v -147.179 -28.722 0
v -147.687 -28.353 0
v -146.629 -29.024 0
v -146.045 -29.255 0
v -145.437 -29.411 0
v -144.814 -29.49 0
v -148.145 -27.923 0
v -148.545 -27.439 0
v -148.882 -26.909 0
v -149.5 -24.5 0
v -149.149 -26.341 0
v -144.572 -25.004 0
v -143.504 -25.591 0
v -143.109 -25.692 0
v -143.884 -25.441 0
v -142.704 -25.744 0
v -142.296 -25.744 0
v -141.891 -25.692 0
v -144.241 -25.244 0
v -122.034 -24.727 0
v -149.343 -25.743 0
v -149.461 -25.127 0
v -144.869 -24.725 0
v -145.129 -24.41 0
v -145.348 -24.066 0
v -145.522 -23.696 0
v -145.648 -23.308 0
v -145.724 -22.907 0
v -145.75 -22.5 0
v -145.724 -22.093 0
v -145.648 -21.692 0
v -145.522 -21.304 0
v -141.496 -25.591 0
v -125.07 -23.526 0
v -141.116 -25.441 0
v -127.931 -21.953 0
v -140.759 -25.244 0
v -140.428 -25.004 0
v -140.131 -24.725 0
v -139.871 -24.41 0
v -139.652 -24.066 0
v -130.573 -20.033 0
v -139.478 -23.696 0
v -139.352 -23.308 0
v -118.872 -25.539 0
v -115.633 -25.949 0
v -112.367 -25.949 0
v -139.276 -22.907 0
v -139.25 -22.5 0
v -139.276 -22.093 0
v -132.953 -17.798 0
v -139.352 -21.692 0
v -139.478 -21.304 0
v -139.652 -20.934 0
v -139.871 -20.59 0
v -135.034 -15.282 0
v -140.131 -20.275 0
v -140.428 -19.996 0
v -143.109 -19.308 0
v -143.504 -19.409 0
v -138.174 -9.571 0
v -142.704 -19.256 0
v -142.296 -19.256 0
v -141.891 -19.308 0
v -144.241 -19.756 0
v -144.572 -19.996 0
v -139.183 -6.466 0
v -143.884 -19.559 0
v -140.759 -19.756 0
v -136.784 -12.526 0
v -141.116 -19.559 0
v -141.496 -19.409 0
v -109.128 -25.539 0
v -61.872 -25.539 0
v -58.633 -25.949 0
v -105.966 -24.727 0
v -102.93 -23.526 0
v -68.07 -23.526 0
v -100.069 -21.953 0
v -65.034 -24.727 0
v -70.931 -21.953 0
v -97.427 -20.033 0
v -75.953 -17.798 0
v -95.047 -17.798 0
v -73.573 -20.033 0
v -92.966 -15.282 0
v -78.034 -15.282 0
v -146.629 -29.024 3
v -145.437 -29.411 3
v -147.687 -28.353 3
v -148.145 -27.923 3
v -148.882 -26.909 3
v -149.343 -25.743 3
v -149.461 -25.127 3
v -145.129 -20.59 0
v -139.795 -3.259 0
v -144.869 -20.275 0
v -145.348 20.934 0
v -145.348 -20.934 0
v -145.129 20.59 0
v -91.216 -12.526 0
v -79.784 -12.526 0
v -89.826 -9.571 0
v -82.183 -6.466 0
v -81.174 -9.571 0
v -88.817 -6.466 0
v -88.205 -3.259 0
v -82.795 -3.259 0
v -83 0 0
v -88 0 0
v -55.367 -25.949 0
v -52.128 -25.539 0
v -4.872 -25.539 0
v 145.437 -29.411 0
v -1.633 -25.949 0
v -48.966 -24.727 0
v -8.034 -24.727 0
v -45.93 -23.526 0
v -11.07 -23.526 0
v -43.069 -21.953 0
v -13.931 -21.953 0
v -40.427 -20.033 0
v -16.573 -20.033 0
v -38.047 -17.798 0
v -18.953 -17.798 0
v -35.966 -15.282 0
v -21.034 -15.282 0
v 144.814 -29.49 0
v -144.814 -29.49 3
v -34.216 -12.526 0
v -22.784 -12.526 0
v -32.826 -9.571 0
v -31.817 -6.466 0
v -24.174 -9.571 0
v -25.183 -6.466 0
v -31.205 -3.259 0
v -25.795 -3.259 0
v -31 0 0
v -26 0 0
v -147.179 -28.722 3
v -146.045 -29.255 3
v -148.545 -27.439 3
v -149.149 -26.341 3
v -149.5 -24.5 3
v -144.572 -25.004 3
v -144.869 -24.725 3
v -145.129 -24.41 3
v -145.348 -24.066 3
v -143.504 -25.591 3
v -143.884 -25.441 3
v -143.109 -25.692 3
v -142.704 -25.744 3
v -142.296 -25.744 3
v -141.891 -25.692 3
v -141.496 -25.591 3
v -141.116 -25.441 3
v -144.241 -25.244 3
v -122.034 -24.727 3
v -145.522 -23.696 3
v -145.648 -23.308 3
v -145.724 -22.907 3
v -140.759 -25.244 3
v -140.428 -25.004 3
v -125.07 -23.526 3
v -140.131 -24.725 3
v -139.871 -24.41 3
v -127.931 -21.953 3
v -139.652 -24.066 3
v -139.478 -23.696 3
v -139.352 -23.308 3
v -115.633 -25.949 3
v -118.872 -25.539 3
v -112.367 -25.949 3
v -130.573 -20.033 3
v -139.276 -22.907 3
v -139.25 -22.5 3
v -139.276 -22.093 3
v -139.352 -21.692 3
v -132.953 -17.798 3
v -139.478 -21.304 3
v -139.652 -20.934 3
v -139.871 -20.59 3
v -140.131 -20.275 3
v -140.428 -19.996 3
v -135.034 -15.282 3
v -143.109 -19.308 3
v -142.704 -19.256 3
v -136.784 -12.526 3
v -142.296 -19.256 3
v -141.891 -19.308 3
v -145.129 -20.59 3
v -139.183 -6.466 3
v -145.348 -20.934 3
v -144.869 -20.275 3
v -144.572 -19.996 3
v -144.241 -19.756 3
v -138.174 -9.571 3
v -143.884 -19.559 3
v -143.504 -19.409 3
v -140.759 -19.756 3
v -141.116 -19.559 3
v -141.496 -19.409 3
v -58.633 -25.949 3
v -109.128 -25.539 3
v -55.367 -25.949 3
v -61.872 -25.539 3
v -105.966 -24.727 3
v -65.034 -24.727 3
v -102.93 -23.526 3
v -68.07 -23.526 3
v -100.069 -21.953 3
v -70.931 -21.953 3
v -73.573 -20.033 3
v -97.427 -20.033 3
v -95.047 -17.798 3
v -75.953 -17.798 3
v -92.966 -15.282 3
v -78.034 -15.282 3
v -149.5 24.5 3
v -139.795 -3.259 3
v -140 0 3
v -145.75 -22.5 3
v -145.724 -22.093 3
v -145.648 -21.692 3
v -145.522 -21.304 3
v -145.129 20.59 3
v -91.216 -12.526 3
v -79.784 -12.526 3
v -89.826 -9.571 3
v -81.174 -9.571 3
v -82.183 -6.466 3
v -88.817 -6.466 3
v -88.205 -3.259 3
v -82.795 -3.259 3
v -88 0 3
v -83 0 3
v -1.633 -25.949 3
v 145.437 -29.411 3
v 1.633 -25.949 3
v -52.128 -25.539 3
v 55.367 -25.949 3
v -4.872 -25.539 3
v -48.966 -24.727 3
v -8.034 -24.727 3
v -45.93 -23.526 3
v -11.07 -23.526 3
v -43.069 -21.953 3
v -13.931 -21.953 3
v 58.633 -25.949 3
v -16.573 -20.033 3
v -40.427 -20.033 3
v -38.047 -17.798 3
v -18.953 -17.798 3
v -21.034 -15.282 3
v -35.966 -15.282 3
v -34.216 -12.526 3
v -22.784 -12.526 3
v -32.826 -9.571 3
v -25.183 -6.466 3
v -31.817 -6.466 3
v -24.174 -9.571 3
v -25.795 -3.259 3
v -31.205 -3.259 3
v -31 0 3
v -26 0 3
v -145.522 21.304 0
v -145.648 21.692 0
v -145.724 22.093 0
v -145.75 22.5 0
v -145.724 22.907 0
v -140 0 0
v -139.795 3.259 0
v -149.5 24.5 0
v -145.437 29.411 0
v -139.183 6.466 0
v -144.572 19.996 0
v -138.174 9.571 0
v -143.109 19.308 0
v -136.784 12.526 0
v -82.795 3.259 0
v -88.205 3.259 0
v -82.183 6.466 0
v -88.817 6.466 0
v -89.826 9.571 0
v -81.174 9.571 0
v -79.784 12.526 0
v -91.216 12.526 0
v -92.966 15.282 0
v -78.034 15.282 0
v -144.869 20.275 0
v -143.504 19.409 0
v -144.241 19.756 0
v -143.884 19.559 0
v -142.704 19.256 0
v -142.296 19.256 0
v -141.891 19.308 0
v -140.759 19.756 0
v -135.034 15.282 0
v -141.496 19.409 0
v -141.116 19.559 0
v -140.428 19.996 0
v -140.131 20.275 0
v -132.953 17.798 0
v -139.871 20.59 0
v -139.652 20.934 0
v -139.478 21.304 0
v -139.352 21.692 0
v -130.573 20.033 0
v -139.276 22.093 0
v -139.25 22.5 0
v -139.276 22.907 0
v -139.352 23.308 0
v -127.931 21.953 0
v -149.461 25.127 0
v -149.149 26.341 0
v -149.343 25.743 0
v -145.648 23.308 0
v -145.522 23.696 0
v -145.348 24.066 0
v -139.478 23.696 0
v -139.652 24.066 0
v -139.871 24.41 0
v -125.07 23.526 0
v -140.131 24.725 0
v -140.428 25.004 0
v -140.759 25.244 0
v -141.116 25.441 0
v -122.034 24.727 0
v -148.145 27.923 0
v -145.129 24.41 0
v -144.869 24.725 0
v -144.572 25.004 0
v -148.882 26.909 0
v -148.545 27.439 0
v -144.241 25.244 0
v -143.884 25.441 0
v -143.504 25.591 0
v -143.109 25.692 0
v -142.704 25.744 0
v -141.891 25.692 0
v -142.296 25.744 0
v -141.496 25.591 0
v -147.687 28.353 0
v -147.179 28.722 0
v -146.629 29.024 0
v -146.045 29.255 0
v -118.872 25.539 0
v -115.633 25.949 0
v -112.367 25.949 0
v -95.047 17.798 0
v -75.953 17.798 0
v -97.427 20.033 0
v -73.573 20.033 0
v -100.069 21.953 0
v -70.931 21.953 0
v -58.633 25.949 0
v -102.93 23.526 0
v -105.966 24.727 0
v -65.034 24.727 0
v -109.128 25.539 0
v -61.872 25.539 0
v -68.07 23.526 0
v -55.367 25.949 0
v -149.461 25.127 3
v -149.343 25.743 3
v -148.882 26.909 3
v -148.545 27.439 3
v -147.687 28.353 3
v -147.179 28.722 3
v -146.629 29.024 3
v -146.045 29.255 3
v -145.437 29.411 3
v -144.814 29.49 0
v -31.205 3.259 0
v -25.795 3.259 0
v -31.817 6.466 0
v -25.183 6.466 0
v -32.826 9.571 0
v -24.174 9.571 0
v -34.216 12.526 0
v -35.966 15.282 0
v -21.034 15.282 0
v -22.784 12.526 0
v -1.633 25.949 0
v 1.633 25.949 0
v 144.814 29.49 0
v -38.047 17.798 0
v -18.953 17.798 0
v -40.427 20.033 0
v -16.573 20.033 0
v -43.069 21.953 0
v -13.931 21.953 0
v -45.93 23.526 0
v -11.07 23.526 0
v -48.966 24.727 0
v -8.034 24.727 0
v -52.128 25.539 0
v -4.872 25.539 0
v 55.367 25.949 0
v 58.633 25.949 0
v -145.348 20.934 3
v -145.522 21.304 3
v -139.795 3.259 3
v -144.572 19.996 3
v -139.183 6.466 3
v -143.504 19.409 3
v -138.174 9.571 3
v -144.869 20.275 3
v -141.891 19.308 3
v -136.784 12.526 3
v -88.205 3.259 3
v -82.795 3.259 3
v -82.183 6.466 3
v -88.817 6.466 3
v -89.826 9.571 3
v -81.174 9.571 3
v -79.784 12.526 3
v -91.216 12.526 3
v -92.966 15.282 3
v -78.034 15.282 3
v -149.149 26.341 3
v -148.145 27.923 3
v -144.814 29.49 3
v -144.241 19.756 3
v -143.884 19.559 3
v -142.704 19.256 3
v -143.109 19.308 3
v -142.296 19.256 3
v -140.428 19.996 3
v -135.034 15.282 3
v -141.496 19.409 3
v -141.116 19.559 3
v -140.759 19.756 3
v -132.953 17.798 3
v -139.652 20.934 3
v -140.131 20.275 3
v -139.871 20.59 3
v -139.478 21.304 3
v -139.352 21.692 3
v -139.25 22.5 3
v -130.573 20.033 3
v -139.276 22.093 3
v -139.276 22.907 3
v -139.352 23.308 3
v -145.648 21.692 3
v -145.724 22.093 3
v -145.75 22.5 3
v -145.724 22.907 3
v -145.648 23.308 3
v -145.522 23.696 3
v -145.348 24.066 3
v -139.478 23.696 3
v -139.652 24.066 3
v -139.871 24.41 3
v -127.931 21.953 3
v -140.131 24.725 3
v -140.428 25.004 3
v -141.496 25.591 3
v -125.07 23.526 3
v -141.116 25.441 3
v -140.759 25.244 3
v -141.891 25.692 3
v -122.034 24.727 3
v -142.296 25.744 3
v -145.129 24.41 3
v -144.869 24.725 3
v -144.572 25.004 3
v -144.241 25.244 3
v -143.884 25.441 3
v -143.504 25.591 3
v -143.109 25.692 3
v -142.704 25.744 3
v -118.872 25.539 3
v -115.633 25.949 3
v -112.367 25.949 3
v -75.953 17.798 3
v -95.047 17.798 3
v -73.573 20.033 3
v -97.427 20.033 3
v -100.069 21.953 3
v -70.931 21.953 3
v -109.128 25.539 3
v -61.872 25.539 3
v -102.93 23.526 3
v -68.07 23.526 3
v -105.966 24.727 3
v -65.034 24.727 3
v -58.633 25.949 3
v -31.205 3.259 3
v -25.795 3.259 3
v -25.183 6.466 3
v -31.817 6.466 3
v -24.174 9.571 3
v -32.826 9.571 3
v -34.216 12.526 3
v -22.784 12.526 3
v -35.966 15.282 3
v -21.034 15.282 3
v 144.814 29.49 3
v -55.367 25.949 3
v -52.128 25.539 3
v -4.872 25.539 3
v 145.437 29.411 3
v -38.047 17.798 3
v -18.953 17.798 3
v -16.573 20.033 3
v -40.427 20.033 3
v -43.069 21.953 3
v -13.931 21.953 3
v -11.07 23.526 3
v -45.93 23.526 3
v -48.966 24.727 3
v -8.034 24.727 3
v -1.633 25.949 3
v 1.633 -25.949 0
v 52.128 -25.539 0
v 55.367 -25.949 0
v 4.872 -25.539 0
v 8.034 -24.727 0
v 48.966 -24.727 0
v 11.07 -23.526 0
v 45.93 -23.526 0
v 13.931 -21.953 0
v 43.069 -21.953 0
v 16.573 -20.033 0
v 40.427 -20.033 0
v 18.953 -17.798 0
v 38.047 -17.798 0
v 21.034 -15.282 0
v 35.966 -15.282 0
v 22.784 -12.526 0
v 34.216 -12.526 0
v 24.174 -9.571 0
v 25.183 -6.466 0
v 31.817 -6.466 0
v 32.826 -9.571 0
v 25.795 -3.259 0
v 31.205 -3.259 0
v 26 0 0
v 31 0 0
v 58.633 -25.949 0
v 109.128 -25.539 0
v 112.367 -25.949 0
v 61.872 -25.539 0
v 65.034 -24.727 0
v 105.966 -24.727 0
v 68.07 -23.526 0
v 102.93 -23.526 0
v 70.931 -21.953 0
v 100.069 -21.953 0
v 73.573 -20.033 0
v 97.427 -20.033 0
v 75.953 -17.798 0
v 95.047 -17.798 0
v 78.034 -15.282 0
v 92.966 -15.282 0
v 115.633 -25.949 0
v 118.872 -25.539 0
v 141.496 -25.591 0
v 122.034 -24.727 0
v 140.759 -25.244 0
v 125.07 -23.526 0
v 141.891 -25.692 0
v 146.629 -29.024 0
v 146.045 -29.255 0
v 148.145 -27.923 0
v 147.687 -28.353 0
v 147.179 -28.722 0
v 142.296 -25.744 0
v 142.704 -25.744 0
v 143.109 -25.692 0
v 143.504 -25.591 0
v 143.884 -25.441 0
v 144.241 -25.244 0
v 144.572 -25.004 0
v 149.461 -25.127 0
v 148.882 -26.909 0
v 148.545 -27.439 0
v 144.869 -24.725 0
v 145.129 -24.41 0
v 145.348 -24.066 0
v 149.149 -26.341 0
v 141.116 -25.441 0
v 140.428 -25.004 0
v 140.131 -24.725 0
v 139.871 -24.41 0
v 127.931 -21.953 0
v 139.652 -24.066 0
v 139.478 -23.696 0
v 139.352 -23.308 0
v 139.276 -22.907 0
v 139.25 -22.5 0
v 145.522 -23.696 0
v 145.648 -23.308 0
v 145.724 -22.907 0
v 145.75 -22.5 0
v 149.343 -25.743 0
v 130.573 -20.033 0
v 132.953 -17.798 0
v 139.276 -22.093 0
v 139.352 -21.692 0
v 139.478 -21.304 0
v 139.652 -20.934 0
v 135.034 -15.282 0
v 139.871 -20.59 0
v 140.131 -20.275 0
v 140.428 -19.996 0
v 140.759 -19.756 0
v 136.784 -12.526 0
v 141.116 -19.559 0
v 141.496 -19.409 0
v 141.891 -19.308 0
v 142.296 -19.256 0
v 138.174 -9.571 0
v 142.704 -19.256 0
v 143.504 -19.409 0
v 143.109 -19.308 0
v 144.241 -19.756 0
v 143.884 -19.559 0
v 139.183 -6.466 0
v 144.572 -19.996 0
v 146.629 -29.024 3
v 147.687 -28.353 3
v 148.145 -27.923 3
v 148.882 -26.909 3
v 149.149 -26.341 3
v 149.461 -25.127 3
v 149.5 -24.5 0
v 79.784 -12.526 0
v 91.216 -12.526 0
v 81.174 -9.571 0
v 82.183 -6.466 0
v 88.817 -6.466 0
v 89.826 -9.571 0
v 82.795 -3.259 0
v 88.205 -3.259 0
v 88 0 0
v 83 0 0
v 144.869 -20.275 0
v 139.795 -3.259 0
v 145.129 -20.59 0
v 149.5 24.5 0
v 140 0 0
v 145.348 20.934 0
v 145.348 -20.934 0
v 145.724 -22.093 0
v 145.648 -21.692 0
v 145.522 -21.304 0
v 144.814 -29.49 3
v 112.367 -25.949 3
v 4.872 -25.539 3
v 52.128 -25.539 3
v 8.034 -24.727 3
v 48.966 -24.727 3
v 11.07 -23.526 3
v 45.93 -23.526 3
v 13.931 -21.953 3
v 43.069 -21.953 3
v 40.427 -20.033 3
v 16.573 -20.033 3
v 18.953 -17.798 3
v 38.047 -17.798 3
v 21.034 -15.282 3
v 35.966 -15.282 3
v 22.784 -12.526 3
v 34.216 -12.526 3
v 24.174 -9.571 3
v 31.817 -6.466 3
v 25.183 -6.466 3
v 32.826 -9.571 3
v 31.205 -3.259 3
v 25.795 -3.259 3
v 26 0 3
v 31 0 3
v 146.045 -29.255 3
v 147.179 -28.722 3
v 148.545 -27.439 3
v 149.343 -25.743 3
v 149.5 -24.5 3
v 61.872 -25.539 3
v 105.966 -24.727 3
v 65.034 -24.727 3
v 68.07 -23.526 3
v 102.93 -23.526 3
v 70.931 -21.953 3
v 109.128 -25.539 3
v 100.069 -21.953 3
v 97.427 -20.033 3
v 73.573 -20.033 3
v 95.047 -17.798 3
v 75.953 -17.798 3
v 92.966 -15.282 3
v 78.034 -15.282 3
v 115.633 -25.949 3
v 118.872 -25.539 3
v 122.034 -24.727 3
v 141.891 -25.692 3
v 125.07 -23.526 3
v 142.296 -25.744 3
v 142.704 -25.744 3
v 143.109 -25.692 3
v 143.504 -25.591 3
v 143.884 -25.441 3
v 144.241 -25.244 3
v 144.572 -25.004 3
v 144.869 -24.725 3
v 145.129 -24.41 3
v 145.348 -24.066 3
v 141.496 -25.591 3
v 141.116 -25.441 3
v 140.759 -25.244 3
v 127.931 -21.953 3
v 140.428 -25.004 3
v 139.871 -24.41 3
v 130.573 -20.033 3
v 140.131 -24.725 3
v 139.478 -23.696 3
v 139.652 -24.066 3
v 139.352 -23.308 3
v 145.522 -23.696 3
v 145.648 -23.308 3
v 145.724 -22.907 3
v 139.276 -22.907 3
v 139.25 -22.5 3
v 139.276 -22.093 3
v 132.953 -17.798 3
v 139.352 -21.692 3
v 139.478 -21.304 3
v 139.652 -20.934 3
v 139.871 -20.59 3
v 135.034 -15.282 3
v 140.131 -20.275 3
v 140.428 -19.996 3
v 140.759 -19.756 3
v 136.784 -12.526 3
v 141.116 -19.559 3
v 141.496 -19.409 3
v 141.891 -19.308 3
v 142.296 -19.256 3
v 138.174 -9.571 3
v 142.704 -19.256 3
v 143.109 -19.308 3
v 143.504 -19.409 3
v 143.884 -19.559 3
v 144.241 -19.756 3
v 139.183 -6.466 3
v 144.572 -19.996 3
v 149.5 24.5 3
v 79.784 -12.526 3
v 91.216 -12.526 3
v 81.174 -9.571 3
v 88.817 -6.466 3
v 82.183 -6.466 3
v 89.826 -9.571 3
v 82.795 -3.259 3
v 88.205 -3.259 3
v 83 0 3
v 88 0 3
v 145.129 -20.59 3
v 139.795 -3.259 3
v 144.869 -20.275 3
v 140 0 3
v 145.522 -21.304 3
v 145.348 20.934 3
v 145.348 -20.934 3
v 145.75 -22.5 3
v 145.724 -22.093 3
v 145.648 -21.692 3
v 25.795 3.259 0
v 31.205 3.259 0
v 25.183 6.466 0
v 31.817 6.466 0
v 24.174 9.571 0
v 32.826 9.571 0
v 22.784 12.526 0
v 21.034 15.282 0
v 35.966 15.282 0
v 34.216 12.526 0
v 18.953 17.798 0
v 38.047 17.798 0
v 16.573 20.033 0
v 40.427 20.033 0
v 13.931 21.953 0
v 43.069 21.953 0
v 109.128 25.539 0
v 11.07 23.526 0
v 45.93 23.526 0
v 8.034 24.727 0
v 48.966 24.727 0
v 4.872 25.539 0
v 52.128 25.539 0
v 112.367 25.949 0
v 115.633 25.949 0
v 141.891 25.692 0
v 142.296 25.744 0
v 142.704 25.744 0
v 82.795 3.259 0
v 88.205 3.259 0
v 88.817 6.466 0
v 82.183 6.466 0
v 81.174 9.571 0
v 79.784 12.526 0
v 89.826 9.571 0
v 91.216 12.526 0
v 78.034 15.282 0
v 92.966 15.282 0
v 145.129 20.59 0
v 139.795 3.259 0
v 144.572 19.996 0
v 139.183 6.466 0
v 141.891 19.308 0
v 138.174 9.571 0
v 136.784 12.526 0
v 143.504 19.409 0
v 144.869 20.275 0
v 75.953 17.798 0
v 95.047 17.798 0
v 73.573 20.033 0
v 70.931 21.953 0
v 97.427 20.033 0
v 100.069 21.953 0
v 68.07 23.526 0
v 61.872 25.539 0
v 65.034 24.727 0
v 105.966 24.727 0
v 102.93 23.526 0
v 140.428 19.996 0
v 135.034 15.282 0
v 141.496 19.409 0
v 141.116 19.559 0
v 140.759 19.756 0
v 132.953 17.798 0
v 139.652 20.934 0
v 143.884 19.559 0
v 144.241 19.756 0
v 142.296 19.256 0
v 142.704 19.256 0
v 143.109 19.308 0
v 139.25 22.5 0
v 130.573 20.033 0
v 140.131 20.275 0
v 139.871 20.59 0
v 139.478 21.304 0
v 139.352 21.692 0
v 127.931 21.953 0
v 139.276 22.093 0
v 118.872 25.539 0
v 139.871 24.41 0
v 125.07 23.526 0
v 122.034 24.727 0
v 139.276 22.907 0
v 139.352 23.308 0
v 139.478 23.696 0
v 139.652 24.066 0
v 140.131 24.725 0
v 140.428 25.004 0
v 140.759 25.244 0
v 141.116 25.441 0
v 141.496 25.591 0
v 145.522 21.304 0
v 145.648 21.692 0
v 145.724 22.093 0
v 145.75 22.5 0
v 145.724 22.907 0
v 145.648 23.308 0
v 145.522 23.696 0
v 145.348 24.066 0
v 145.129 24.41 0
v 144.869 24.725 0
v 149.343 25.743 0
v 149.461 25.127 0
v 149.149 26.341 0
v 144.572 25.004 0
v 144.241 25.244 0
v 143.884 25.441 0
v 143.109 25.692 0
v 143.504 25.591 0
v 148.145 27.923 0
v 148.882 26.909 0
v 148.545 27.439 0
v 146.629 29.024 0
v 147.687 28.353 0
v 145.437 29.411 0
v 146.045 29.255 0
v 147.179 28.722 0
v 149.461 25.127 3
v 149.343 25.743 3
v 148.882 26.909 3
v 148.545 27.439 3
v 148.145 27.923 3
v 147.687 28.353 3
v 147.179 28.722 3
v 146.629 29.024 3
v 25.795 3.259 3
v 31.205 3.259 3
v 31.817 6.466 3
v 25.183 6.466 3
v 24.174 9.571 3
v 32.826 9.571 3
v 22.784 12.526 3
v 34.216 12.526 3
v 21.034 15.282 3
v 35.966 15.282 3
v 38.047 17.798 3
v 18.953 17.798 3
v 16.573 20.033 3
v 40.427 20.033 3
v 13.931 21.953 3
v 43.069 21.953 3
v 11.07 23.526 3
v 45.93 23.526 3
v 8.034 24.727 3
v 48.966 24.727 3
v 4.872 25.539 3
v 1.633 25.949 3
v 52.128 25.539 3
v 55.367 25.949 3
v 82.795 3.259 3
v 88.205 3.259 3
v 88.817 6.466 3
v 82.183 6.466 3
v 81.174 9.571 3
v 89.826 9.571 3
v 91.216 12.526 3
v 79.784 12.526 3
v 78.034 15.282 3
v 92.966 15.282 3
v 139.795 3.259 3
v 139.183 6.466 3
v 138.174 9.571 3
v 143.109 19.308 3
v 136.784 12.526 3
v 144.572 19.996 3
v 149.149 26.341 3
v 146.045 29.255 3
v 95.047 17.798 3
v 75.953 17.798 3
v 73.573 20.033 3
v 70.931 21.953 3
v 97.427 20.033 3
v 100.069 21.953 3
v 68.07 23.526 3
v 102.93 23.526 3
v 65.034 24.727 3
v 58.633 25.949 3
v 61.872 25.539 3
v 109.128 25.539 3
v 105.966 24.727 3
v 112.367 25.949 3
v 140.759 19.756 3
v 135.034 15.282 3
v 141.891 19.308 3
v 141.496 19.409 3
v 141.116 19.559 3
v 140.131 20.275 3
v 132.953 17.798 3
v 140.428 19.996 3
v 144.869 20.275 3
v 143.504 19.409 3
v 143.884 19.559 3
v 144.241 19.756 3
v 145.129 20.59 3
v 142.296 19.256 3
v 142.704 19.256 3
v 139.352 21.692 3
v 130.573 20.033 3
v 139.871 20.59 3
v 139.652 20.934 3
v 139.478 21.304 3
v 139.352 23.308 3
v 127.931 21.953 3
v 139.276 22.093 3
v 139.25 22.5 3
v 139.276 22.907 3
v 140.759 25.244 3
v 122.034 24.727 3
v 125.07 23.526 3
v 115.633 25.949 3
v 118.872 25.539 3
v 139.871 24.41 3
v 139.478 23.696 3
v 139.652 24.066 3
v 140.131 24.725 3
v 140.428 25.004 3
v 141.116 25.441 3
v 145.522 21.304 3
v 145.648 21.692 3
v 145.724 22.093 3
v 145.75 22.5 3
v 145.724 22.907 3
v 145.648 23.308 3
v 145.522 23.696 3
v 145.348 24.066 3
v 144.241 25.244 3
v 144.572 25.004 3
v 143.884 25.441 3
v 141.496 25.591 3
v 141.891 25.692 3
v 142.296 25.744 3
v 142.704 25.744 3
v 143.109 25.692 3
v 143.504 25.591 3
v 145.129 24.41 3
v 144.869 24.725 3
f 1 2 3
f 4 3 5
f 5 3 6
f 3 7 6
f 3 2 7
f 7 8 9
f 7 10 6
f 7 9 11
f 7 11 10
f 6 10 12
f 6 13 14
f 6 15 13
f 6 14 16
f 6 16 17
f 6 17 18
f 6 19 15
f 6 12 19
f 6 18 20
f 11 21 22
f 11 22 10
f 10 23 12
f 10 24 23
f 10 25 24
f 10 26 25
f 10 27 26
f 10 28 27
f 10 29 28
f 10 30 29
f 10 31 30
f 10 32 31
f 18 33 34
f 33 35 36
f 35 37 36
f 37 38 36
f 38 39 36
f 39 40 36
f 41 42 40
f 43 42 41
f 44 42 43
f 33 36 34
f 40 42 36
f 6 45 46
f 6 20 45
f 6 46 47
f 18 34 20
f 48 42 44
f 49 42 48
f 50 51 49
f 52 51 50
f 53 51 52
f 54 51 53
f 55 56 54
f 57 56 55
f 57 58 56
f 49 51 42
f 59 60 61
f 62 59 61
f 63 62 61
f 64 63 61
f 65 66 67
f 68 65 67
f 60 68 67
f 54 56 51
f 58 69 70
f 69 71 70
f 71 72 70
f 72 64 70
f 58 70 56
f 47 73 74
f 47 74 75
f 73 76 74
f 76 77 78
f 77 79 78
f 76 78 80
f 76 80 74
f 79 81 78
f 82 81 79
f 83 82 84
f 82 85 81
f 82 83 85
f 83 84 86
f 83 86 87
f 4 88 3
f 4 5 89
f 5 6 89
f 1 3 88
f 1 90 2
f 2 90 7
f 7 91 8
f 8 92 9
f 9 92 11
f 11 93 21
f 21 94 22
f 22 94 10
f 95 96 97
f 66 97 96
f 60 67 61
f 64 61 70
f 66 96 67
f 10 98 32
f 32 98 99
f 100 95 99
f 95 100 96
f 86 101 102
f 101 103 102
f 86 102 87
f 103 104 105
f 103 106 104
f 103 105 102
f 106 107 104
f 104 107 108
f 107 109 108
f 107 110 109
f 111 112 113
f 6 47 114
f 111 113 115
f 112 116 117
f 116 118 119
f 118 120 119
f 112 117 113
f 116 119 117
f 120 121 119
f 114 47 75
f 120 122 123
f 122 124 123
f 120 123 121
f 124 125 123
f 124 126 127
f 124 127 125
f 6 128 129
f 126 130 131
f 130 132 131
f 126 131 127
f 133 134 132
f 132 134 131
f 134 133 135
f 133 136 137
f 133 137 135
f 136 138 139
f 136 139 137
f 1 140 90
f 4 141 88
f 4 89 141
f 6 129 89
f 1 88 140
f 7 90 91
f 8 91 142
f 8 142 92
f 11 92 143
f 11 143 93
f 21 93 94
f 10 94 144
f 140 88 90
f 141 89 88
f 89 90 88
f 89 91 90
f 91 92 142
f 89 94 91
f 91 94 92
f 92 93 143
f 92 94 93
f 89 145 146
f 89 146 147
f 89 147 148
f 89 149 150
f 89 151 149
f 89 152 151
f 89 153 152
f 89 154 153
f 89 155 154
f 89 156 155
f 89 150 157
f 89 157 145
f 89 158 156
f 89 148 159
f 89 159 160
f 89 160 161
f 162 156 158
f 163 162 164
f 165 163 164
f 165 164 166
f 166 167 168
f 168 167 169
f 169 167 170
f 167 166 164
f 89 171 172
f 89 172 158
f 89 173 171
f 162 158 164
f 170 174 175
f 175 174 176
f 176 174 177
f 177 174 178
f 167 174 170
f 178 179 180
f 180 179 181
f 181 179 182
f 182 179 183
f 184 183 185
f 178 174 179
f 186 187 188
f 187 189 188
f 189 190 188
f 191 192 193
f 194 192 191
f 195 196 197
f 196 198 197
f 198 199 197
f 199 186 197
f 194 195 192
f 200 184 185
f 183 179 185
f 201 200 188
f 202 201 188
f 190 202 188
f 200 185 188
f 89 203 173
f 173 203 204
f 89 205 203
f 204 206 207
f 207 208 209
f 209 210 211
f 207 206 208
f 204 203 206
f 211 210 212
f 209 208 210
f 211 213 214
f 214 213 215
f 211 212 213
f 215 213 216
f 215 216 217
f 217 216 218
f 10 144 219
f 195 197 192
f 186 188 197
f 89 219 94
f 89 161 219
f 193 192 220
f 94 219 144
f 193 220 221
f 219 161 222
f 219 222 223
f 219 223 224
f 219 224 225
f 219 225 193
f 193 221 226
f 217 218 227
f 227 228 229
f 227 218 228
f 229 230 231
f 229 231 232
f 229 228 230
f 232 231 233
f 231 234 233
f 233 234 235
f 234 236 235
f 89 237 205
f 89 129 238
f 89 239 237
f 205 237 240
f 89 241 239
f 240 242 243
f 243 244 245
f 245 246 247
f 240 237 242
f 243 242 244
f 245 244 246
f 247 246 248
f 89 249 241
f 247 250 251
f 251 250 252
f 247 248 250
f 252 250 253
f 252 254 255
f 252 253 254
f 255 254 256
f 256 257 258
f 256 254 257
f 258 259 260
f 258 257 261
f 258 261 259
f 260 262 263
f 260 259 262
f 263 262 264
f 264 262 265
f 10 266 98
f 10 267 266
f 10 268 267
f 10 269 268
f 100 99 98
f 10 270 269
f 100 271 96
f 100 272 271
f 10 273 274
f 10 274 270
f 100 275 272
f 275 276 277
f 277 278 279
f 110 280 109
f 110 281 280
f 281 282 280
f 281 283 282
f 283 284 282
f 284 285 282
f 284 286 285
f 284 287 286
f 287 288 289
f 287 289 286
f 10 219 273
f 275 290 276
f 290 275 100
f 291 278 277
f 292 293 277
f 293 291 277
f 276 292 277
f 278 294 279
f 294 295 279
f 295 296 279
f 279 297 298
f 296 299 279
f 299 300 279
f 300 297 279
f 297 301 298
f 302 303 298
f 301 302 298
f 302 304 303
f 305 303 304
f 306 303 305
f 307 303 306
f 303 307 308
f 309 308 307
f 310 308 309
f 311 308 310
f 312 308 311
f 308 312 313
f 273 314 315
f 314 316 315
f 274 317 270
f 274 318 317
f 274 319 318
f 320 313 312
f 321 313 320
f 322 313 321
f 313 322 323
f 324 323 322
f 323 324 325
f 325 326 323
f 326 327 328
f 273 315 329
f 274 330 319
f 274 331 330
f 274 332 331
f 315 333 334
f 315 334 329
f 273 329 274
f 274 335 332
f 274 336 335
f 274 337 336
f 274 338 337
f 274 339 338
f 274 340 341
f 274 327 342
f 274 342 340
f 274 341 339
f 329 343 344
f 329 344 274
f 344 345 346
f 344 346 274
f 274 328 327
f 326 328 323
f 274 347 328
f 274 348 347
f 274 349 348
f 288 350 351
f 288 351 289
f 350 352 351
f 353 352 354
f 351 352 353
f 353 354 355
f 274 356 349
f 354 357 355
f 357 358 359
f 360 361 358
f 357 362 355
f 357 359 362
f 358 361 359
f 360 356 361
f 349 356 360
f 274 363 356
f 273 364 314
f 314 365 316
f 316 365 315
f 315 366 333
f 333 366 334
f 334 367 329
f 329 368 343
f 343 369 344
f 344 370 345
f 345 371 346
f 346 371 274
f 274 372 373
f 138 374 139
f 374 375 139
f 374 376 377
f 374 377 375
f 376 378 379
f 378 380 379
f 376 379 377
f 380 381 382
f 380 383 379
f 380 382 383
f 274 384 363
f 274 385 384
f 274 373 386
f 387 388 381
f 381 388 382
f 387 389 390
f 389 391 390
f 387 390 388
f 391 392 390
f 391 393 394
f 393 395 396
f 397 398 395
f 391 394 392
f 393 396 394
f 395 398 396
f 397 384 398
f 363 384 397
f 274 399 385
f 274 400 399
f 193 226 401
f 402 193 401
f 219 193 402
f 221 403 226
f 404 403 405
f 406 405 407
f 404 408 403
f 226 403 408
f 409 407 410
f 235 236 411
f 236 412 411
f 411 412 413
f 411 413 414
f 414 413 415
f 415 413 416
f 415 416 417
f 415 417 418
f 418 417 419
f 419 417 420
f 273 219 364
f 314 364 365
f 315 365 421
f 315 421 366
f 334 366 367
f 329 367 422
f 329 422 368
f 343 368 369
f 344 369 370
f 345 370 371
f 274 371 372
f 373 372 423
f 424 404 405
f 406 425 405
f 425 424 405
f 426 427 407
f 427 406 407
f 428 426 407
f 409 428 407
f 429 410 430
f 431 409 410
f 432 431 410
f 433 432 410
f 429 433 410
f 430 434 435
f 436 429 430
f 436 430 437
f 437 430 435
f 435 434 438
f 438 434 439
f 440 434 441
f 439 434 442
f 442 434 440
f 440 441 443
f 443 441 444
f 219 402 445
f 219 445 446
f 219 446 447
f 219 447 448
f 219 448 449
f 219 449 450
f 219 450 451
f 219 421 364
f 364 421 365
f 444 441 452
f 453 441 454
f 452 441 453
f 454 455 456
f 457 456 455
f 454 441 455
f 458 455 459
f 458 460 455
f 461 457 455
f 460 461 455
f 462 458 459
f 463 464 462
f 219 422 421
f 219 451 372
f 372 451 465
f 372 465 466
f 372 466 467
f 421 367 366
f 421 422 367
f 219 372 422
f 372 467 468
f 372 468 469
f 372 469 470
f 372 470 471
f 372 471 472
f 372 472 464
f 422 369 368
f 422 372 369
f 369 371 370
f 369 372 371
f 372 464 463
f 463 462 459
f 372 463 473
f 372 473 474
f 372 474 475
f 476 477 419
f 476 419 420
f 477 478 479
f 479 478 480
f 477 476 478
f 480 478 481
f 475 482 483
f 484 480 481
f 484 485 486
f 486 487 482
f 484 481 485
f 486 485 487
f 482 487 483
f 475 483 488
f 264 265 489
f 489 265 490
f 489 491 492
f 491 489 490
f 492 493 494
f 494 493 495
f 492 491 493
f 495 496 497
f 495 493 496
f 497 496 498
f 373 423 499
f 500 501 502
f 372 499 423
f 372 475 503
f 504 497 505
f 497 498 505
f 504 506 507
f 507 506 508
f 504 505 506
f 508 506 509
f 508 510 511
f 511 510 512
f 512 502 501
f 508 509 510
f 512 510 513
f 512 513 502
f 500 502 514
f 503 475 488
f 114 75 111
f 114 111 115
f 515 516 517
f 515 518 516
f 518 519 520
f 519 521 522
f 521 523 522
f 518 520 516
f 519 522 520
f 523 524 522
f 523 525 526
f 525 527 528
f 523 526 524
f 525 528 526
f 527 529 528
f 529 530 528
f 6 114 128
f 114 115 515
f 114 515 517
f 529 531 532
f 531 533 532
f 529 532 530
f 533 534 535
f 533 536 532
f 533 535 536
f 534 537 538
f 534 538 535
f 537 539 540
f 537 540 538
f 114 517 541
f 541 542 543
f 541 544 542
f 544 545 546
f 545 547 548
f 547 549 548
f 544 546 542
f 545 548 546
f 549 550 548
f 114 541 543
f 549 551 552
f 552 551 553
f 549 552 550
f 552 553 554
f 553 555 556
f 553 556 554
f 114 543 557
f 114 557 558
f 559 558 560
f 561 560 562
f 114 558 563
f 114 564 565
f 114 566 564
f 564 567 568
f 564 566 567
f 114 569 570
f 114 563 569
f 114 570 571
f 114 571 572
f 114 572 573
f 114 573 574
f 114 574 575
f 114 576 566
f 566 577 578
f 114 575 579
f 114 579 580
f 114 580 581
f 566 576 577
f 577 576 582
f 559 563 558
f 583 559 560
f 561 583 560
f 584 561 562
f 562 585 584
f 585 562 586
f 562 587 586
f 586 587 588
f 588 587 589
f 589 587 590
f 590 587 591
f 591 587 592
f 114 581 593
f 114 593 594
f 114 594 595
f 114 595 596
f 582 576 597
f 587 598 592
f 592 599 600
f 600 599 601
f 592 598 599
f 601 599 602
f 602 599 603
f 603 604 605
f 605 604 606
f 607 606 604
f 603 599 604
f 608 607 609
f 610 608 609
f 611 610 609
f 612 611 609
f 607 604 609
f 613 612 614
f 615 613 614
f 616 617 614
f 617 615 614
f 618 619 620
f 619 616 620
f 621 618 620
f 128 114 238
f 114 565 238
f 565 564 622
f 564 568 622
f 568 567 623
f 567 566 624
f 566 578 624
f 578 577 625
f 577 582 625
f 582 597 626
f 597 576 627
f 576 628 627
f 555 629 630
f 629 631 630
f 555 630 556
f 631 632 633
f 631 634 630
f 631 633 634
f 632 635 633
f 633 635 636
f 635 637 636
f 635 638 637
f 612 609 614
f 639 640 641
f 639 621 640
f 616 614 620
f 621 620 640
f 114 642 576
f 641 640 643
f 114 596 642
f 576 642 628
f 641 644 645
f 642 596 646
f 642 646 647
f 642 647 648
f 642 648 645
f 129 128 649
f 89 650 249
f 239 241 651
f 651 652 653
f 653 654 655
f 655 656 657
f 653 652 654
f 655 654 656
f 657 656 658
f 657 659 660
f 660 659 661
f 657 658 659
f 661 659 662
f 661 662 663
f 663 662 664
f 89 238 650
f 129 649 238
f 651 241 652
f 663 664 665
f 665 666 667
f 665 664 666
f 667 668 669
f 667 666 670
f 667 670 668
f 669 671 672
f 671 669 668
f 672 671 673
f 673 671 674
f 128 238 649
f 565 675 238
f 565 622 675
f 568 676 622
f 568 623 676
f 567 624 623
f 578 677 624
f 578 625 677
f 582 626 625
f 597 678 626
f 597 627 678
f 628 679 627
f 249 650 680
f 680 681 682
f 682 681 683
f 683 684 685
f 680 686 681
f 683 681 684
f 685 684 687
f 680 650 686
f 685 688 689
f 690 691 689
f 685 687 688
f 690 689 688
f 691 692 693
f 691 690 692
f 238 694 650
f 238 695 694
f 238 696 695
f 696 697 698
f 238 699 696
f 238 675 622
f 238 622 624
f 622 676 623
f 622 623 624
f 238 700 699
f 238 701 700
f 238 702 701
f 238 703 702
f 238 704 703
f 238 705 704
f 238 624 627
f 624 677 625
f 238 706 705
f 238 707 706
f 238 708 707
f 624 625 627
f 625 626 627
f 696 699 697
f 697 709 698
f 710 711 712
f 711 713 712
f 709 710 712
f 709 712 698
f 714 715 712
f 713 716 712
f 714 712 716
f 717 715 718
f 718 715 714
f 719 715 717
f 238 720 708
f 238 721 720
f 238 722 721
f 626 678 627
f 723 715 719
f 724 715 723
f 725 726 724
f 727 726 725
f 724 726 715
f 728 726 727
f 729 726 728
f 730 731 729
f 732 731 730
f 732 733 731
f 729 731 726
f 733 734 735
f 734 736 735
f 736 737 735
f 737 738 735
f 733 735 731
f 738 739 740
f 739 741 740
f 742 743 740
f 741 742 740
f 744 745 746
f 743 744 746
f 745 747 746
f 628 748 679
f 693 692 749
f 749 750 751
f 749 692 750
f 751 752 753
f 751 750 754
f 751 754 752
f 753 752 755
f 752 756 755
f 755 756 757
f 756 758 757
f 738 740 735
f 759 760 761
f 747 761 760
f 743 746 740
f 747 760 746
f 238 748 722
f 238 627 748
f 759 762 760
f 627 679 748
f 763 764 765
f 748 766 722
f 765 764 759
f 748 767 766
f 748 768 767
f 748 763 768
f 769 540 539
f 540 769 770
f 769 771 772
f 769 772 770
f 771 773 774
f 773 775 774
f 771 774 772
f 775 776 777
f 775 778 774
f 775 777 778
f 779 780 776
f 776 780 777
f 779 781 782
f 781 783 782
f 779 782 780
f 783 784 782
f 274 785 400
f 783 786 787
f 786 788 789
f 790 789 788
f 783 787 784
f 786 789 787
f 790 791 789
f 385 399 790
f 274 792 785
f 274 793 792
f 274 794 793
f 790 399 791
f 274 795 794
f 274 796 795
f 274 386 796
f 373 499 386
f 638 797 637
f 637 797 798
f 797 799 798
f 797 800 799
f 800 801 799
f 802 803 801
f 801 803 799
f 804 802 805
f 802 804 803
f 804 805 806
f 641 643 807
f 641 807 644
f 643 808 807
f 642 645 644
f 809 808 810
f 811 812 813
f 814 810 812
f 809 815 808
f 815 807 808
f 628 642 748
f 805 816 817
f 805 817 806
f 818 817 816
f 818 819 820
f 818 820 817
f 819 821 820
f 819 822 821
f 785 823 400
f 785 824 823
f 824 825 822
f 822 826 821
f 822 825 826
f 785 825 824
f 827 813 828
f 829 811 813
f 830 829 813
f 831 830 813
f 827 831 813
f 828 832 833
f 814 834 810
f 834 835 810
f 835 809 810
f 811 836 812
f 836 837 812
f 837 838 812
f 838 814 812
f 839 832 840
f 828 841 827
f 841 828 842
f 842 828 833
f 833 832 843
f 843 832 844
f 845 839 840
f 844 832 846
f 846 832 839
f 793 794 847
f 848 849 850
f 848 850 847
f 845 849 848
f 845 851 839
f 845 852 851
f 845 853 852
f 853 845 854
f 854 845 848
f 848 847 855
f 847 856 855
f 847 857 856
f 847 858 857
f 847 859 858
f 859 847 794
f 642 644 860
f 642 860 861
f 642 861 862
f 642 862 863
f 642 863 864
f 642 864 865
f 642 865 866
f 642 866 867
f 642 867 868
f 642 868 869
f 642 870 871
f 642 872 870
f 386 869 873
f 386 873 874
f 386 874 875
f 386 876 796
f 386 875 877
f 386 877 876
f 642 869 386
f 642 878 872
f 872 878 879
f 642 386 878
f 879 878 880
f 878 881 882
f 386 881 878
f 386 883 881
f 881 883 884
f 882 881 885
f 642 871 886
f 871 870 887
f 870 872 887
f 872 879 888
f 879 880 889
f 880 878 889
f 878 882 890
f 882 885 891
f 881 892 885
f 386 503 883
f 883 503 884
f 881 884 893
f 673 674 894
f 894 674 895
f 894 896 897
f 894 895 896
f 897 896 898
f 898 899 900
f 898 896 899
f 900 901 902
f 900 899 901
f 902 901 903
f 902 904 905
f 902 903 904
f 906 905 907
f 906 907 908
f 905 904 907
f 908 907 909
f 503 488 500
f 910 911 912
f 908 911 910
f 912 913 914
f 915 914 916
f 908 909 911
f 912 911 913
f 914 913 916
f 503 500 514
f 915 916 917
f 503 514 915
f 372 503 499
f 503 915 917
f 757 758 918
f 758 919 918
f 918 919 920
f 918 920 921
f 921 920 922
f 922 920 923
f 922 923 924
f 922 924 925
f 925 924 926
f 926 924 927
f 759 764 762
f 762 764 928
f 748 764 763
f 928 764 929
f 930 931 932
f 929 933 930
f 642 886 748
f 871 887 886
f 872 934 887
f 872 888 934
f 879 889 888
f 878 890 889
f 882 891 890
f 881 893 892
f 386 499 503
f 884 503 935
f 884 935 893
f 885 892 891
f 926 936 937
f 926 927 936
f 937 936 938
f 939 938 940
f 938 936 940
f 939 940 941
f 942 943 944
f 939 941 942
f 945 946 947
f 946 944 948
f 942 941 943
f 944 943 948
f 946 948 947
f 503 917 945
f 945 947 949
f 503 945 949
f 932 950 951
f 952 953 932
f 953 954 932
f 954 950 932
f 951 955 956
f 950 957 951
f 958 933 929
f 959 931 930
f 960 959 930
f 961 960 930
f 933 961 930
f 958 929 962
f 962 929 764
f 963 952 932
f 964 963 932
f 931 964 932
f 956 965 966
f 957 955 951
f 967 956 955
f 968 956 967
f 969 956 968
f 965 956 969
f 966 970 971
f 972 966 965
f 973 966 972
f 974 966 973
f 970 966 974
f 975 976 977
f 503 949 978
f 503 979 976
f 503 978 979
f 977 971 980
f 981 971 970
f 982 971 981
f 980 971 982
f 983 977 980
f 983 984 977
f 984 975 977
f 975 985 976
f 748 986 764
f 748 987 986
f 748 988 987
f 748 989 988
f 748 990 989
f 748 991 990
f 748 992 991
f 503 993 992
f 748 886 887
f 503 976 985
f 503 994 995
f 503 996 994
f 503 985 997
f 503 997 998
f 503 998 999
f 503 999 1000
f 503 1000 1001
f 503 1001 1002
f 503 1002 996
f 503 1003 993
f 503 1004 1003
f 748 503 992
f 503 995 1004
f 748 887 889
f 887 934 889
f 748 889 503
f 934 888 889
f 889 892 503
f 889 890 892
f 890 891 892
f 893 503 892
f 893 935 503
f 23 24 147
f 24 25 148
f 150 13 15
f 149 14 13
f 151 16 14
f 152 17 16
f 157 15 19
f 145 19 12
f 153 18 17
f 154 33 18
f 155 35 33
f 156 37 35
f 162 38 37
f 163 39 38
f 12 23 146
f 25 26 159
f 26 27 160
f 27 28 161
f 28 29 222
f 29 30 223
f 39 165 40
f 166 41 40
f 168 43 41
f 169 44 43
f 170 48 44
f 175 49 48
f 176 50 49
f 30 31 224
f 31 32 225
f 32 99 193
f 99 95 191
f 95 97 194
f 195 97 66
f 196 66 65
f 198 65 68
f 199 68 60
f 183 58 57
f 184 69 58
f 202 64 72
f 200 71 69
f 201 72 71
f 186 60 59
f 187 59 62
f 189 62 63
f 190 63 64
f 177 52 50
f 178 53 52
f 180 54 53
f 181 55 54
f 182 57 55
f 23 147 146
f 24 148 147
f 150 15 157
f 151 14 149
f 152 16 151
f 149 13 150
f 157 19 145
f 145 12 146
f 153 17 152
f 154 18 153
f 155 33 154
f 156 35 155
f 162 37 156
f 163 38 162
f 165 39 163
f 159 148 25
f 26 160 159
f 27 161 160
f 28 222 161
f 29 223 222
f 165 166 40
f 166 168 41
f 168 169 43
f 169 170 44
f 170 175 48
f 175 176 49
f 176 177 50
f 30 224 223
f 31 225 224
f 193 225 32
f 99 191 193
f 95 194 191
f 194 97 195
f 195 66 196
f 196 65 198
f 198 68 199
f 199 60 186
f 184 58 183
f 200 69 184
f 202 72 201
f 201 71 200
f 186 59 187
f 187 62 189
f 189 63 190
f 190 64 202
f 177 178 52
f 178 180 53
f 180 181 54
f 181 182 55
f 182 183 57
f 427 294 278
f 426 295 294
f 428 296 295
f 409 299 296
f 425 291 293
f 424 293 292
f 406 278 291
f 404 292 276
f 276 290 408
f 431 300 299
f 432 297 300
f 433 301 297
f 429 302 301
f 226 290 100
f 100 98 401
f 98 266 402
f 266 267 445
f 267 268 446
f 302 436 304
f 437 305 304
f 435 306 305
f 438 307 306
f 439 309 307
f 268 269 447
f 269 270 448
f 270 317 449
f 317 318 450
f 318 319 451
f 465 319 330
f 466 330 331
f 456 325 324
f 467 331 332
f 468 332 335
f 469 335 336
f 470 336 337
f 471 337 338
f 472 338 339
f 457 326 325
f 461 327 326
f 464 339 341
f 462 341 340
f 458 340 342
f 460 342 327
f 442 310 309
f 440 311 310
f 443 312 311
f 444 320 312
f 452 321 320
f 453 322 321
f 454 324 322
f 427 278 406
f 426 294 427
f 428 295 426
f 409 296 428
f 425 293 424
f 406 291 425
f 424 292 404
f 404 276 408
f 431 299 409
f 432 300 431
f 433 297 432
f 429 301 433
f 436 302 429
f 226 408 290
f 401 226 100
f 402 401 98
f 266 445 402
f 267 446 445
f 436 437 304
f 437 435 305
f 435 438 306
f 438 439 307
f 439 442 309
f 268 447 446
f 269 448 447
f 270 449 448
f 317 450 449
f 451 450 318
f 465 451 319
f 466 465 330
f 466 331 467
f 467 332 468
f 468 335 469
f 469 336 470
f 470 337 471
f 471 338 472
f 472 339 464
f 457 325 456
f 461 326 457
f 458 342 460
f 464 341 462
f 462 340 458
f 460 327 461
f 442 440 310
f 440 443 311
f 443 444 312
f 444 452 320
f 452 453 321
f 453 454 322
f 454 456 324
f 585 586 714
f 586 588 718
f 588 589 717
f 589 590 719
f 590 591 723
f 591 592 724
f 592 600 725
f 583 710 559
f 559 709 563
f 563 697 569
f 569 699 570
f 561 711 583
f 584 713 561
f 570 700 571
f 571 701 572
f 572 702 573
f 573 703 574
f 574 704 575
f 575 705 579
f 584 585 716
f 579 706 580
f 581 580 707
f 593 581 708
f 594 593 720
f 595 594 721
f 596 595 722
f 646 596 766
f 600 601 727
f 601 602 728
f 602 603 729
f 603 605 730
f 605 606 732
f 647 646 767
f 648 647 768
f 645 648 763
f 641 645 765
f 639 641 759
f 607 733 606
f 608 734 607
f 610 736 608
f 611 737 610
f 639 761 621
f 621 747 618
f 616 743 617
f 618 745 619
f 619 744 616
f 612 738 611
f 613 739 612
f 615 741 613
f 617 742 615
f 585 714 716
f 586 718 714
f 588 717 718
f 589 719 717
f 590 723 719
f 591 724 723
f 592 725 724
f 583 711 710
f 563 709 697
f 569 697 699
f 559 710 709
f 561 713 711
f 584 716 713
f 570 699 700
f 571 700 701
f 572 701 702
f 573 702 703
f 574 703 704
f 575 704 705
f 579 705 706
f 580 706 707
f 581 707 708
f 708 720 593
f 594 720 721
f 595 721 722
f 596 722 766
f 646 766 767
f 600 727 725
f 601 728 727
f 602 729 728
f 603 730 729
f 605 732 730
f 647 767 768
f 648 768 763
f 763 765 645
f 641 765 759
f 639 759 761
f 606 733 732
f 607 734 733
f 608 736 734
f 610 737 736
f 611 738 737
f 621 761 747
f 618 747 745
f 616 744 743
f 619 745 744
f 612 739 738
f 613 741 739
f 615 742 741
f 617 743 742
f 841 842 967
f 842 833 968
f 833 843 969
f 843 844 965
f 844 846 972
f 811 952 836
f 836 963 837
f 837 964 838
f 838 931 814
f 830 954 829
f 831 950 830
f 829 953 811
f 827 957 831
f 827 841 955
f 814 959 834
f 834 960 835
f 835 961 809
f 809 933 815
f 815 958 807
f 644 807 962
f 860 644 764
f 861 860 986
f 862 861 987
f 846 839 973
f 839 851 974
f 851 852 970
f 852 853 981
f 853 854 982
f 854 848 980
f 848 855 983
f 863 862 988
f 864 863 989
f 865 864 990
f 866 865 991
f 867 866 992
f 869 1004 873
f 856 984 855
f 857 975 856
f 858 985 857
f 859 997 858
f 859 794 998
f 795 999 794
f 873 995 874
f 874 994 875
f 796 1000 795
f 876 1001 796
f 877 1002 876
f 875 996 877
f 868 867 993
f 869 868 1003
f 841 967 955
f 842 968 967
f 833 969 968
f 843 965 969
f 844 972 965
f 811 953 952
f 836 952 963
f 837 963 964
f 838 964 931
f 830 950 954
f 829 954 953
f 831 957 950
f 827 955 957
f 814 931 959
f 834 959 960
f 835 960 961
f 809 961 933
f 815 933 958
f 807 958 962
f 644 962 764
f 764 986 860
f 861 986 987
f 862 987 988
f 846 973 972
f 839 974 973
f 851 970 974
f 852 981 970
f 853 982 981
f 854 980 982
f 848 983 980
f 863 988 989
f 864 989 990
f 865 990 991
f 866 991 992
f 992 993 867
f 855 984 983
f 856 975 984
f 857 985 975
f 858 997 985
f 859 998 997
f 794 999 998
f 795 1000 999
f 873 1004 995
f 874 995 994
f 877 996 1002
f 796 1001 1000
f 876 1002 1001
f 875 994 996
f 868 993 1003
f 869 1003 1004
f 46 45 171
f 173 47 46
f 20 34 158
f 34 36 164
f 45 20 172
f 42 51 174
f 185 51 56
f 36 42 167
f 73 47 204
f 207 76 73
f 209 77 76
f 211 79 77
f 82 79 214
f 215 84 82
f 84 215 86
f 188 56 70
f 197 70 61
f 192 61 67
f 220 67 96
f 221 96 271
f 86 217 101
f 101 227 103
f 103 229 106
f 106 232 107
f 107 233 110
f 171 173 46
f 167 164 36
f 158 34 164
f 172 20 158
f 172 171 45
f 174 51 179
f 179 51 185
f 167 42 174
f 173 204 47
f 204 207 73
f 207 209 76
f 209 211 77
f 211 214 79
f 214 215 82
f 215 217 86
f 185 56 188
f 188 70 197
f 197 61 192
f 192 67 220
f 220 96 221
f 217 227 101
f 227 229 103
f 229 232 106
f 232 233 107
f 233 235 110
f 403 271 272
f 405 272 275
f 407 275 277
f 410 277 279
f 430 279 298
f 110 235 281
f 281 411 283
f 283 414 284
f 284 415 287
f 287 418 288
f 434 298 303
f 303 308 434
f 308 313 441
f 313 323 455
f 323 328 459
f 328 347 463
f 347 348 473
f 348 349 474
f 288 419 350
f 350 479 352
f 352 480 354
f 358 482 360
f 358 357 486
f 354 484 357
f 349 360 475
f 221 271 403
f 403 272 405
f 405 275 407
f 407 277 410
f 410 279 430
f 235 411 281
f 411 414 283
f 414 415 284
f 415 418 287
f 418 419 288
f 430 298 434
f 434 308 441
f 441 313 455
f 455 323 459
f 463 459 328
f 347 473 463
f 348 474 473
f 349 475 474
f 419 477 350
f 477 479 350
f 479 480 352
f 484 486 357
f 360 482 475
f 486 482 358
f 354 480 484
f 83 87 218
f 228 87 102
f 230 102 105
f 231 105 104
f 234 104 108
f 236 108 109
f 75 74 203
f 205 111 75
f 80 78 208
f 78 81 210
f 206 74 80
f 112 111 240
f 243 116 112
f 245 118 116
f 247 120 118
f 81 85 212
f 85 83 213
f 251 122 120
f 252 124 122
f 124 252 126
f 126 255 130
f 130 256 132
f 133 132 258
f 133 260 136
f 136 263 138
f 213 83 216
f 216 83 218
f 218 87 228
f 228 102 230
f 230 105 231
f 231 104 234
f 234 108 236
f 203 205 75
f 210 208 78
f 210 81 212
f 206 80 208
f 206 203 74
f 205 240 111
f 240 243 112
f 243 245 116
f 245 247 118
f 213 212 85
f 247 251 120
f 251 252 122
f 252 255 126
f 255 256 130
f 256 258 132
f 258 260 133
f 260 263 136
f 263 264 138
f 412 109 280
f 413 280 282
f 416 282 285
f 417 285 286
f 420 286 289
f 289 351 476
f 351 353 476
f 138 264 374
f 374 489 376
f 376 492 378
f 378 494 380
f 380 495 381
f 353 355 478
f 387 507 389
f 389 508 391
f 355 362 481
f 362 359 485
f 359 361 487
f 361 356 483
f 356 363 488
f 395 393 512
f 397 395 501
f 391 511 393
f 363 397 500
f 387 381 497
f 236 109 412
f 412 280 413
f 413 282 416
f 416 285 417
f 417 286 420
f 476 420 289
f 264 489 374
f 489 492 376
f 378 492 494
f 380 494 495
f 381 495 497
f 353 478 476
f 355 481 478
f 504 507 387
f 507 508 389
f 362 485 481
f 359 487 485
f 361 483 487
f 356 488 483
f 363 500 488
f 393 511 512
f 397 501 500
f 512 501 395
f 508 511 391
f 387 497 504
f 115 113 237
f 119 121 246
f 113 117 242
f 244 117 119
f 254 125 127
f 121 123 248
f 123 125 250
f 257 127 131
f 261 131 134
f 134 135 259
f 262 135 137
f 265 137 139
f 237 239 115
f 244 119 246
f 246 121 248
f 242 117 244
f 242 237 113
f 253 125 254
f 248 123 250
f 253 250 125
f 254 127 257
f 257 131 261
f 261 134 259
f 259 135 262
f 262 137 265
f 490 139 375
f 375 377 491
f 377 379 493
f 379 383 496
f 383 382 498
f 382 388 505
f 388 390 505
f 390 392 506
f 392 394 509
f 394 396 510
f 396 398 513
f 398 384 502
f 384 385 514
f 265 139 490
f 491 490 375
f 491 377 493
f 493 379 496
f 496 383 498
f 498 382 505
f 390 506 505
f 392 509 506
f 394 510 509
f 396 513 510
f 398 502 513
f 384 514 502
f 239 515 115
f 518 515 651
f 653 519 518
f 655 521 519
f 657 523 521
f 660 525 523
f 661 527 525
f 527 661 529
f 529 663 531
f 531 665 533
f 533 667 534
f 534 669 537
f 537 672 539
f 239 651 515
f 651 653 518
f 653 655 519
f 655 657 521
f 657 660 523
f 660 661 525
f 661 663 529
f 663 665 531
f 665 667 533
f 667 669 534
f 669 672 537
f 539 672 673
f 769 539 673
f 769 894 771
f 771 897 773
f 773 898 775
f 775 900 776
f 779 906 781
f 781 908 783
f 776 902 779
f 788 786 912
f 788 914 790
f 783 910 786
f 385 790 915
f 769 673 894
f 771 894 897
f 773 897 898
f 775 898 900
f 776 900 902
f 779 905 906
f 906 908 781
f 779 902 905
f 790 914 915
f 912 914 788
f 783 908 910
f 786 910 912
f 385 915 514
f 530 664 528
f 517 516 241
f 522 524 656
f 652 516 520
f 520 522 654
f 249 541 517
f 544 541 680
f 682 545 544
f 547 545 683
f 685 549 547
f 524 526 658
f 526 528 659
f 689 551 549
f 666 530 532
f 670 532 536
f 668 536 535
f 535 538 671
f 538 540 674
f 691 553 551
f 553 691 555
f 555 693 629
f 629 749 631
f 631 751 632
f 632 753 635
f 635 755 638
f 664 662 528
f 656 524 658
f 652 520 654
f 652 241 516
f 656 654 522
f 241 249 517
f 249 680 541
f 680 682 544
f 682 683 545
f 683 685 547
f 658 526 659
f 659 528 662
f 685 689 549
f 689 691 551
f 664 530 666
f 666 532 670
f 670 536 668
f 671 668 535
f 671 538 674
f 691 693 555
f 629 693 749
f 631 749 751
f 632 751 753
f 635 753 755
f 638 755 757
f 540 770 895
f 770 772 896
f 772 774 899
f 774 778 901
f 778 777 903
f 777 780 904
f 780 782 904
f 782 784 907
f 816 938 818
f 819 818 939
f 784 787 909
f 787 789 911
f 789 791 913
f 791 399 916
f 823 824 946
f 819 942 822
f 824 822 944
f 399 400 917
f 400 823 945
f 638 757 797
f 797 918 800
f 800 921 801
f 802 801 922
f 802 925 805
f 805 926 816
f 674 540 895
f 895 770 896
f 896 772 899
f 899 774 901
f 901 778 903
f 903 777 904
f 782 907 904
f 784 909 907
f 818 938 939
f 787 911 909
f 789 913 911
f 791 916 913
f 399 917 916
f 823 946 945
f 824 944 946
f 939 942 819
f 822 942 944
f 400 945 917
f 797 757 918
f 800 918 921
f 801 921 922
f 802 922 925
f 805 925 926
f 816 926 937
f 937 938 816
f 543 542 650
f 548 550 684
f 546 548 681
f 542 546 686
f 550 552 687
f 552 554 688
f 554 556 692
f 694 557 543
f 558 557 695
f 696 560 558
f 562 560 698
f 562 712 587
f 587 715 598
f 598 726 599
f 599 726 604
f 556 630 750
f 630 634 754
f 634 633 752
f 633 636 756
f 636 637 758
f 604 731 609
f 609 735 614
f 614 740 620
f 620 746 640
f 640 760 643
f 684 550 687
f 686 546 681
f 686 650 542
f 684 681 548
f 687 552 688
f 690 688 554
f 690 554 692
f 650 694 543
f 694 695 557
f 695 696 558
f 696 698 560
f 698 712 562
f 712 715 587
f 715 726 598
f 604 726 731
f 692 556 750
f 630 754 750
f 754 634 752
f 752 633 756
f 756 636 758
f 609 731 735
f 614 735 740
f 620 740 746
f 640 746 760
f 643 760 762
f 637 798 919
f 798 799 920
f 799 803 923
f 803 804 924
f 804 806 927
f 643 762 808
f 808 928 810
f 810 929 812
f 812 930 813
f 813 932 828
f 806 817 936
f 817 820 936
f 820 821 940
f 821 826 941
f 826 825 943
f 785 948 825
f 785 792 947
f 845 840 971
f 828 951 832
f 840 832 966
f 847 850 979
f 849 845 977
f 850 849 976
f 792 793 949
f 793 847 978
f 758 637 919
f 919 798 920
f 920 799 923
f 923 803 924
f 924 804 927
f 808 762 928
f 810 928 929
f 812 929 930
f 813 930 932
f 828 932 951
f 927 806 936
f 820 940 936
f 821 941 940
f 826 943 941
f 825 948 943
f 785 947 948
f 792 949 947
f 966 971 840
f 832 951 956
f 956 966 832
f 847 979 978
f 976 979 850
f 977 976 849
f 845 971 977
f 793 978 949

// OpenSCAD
$fn = 50;

difference() {
	union() {
		hull() {
			translate(v = [-144.5, 24.5, 0]) {
				cylinder(h = 3, r = 5);
			}
			translate(v = [144.5, 24.5, 0]) {
				cylinder(h = 3, r = 5);
			}
			translate(v = [-144.5, -24.5, 0]) {
				cylinder(h = 3, r = 5);
			}
			translate(v = [144.5, -24.5, 0]) {
				cylinder(h = 3, r = 5);
			}
		}
	}
	union() {
		translate(v = [-142.5, -22.5, -100.0]) {
			cylinder(h = 200, r = 3.25);
		}
		translate(v = [-142.5, 22.5, -100.0]) {
			cylinder(h = 200, r = 3.25);
		}
		translate(v = [142.5, -22.5, -100.0]) {
			cylinder(h = 200, r = 3.25);
		}
		translate(v = [142.5, 22.5, -100.0]) {
			cylinder(h = 200, r = 3.25);
		}
		translate(v = [-142.5, -22.5, -100.0]) {
			cylinder(h = 200, r = 1.8);
		}
		translate(v = [-142.5, 22.5, -100.0]) {
			cylinder(h = 200, r = 1.8);
		}
		translate(v = [142.5, -22.5, -100.0]) {
			cylinder(h = 200, r = 1.8);
		}
		translate(v = [142.5, 22.5, -100.0]) {
			cylinder(h = 200, r = 1.8);
		}
		translate(v = [-114.0, 0, 0.0]) {
			cylinder(h = 3, r = 26.0);
		}
		translate(v = [-57.0, 0, 0.0]) {
			cylinder(h = 3, r = 26.0);
		}
		cylinder(h = 3, r = 26.0);
		translate(v = [57.0, 0, 0.0]) {
			cylinder(h = 3, r = 26.0);
		}
		translate(v = [114.0, 0, 0.0]) {
			cylinder(h = 3, r = 26.0);
		}
	}
}
